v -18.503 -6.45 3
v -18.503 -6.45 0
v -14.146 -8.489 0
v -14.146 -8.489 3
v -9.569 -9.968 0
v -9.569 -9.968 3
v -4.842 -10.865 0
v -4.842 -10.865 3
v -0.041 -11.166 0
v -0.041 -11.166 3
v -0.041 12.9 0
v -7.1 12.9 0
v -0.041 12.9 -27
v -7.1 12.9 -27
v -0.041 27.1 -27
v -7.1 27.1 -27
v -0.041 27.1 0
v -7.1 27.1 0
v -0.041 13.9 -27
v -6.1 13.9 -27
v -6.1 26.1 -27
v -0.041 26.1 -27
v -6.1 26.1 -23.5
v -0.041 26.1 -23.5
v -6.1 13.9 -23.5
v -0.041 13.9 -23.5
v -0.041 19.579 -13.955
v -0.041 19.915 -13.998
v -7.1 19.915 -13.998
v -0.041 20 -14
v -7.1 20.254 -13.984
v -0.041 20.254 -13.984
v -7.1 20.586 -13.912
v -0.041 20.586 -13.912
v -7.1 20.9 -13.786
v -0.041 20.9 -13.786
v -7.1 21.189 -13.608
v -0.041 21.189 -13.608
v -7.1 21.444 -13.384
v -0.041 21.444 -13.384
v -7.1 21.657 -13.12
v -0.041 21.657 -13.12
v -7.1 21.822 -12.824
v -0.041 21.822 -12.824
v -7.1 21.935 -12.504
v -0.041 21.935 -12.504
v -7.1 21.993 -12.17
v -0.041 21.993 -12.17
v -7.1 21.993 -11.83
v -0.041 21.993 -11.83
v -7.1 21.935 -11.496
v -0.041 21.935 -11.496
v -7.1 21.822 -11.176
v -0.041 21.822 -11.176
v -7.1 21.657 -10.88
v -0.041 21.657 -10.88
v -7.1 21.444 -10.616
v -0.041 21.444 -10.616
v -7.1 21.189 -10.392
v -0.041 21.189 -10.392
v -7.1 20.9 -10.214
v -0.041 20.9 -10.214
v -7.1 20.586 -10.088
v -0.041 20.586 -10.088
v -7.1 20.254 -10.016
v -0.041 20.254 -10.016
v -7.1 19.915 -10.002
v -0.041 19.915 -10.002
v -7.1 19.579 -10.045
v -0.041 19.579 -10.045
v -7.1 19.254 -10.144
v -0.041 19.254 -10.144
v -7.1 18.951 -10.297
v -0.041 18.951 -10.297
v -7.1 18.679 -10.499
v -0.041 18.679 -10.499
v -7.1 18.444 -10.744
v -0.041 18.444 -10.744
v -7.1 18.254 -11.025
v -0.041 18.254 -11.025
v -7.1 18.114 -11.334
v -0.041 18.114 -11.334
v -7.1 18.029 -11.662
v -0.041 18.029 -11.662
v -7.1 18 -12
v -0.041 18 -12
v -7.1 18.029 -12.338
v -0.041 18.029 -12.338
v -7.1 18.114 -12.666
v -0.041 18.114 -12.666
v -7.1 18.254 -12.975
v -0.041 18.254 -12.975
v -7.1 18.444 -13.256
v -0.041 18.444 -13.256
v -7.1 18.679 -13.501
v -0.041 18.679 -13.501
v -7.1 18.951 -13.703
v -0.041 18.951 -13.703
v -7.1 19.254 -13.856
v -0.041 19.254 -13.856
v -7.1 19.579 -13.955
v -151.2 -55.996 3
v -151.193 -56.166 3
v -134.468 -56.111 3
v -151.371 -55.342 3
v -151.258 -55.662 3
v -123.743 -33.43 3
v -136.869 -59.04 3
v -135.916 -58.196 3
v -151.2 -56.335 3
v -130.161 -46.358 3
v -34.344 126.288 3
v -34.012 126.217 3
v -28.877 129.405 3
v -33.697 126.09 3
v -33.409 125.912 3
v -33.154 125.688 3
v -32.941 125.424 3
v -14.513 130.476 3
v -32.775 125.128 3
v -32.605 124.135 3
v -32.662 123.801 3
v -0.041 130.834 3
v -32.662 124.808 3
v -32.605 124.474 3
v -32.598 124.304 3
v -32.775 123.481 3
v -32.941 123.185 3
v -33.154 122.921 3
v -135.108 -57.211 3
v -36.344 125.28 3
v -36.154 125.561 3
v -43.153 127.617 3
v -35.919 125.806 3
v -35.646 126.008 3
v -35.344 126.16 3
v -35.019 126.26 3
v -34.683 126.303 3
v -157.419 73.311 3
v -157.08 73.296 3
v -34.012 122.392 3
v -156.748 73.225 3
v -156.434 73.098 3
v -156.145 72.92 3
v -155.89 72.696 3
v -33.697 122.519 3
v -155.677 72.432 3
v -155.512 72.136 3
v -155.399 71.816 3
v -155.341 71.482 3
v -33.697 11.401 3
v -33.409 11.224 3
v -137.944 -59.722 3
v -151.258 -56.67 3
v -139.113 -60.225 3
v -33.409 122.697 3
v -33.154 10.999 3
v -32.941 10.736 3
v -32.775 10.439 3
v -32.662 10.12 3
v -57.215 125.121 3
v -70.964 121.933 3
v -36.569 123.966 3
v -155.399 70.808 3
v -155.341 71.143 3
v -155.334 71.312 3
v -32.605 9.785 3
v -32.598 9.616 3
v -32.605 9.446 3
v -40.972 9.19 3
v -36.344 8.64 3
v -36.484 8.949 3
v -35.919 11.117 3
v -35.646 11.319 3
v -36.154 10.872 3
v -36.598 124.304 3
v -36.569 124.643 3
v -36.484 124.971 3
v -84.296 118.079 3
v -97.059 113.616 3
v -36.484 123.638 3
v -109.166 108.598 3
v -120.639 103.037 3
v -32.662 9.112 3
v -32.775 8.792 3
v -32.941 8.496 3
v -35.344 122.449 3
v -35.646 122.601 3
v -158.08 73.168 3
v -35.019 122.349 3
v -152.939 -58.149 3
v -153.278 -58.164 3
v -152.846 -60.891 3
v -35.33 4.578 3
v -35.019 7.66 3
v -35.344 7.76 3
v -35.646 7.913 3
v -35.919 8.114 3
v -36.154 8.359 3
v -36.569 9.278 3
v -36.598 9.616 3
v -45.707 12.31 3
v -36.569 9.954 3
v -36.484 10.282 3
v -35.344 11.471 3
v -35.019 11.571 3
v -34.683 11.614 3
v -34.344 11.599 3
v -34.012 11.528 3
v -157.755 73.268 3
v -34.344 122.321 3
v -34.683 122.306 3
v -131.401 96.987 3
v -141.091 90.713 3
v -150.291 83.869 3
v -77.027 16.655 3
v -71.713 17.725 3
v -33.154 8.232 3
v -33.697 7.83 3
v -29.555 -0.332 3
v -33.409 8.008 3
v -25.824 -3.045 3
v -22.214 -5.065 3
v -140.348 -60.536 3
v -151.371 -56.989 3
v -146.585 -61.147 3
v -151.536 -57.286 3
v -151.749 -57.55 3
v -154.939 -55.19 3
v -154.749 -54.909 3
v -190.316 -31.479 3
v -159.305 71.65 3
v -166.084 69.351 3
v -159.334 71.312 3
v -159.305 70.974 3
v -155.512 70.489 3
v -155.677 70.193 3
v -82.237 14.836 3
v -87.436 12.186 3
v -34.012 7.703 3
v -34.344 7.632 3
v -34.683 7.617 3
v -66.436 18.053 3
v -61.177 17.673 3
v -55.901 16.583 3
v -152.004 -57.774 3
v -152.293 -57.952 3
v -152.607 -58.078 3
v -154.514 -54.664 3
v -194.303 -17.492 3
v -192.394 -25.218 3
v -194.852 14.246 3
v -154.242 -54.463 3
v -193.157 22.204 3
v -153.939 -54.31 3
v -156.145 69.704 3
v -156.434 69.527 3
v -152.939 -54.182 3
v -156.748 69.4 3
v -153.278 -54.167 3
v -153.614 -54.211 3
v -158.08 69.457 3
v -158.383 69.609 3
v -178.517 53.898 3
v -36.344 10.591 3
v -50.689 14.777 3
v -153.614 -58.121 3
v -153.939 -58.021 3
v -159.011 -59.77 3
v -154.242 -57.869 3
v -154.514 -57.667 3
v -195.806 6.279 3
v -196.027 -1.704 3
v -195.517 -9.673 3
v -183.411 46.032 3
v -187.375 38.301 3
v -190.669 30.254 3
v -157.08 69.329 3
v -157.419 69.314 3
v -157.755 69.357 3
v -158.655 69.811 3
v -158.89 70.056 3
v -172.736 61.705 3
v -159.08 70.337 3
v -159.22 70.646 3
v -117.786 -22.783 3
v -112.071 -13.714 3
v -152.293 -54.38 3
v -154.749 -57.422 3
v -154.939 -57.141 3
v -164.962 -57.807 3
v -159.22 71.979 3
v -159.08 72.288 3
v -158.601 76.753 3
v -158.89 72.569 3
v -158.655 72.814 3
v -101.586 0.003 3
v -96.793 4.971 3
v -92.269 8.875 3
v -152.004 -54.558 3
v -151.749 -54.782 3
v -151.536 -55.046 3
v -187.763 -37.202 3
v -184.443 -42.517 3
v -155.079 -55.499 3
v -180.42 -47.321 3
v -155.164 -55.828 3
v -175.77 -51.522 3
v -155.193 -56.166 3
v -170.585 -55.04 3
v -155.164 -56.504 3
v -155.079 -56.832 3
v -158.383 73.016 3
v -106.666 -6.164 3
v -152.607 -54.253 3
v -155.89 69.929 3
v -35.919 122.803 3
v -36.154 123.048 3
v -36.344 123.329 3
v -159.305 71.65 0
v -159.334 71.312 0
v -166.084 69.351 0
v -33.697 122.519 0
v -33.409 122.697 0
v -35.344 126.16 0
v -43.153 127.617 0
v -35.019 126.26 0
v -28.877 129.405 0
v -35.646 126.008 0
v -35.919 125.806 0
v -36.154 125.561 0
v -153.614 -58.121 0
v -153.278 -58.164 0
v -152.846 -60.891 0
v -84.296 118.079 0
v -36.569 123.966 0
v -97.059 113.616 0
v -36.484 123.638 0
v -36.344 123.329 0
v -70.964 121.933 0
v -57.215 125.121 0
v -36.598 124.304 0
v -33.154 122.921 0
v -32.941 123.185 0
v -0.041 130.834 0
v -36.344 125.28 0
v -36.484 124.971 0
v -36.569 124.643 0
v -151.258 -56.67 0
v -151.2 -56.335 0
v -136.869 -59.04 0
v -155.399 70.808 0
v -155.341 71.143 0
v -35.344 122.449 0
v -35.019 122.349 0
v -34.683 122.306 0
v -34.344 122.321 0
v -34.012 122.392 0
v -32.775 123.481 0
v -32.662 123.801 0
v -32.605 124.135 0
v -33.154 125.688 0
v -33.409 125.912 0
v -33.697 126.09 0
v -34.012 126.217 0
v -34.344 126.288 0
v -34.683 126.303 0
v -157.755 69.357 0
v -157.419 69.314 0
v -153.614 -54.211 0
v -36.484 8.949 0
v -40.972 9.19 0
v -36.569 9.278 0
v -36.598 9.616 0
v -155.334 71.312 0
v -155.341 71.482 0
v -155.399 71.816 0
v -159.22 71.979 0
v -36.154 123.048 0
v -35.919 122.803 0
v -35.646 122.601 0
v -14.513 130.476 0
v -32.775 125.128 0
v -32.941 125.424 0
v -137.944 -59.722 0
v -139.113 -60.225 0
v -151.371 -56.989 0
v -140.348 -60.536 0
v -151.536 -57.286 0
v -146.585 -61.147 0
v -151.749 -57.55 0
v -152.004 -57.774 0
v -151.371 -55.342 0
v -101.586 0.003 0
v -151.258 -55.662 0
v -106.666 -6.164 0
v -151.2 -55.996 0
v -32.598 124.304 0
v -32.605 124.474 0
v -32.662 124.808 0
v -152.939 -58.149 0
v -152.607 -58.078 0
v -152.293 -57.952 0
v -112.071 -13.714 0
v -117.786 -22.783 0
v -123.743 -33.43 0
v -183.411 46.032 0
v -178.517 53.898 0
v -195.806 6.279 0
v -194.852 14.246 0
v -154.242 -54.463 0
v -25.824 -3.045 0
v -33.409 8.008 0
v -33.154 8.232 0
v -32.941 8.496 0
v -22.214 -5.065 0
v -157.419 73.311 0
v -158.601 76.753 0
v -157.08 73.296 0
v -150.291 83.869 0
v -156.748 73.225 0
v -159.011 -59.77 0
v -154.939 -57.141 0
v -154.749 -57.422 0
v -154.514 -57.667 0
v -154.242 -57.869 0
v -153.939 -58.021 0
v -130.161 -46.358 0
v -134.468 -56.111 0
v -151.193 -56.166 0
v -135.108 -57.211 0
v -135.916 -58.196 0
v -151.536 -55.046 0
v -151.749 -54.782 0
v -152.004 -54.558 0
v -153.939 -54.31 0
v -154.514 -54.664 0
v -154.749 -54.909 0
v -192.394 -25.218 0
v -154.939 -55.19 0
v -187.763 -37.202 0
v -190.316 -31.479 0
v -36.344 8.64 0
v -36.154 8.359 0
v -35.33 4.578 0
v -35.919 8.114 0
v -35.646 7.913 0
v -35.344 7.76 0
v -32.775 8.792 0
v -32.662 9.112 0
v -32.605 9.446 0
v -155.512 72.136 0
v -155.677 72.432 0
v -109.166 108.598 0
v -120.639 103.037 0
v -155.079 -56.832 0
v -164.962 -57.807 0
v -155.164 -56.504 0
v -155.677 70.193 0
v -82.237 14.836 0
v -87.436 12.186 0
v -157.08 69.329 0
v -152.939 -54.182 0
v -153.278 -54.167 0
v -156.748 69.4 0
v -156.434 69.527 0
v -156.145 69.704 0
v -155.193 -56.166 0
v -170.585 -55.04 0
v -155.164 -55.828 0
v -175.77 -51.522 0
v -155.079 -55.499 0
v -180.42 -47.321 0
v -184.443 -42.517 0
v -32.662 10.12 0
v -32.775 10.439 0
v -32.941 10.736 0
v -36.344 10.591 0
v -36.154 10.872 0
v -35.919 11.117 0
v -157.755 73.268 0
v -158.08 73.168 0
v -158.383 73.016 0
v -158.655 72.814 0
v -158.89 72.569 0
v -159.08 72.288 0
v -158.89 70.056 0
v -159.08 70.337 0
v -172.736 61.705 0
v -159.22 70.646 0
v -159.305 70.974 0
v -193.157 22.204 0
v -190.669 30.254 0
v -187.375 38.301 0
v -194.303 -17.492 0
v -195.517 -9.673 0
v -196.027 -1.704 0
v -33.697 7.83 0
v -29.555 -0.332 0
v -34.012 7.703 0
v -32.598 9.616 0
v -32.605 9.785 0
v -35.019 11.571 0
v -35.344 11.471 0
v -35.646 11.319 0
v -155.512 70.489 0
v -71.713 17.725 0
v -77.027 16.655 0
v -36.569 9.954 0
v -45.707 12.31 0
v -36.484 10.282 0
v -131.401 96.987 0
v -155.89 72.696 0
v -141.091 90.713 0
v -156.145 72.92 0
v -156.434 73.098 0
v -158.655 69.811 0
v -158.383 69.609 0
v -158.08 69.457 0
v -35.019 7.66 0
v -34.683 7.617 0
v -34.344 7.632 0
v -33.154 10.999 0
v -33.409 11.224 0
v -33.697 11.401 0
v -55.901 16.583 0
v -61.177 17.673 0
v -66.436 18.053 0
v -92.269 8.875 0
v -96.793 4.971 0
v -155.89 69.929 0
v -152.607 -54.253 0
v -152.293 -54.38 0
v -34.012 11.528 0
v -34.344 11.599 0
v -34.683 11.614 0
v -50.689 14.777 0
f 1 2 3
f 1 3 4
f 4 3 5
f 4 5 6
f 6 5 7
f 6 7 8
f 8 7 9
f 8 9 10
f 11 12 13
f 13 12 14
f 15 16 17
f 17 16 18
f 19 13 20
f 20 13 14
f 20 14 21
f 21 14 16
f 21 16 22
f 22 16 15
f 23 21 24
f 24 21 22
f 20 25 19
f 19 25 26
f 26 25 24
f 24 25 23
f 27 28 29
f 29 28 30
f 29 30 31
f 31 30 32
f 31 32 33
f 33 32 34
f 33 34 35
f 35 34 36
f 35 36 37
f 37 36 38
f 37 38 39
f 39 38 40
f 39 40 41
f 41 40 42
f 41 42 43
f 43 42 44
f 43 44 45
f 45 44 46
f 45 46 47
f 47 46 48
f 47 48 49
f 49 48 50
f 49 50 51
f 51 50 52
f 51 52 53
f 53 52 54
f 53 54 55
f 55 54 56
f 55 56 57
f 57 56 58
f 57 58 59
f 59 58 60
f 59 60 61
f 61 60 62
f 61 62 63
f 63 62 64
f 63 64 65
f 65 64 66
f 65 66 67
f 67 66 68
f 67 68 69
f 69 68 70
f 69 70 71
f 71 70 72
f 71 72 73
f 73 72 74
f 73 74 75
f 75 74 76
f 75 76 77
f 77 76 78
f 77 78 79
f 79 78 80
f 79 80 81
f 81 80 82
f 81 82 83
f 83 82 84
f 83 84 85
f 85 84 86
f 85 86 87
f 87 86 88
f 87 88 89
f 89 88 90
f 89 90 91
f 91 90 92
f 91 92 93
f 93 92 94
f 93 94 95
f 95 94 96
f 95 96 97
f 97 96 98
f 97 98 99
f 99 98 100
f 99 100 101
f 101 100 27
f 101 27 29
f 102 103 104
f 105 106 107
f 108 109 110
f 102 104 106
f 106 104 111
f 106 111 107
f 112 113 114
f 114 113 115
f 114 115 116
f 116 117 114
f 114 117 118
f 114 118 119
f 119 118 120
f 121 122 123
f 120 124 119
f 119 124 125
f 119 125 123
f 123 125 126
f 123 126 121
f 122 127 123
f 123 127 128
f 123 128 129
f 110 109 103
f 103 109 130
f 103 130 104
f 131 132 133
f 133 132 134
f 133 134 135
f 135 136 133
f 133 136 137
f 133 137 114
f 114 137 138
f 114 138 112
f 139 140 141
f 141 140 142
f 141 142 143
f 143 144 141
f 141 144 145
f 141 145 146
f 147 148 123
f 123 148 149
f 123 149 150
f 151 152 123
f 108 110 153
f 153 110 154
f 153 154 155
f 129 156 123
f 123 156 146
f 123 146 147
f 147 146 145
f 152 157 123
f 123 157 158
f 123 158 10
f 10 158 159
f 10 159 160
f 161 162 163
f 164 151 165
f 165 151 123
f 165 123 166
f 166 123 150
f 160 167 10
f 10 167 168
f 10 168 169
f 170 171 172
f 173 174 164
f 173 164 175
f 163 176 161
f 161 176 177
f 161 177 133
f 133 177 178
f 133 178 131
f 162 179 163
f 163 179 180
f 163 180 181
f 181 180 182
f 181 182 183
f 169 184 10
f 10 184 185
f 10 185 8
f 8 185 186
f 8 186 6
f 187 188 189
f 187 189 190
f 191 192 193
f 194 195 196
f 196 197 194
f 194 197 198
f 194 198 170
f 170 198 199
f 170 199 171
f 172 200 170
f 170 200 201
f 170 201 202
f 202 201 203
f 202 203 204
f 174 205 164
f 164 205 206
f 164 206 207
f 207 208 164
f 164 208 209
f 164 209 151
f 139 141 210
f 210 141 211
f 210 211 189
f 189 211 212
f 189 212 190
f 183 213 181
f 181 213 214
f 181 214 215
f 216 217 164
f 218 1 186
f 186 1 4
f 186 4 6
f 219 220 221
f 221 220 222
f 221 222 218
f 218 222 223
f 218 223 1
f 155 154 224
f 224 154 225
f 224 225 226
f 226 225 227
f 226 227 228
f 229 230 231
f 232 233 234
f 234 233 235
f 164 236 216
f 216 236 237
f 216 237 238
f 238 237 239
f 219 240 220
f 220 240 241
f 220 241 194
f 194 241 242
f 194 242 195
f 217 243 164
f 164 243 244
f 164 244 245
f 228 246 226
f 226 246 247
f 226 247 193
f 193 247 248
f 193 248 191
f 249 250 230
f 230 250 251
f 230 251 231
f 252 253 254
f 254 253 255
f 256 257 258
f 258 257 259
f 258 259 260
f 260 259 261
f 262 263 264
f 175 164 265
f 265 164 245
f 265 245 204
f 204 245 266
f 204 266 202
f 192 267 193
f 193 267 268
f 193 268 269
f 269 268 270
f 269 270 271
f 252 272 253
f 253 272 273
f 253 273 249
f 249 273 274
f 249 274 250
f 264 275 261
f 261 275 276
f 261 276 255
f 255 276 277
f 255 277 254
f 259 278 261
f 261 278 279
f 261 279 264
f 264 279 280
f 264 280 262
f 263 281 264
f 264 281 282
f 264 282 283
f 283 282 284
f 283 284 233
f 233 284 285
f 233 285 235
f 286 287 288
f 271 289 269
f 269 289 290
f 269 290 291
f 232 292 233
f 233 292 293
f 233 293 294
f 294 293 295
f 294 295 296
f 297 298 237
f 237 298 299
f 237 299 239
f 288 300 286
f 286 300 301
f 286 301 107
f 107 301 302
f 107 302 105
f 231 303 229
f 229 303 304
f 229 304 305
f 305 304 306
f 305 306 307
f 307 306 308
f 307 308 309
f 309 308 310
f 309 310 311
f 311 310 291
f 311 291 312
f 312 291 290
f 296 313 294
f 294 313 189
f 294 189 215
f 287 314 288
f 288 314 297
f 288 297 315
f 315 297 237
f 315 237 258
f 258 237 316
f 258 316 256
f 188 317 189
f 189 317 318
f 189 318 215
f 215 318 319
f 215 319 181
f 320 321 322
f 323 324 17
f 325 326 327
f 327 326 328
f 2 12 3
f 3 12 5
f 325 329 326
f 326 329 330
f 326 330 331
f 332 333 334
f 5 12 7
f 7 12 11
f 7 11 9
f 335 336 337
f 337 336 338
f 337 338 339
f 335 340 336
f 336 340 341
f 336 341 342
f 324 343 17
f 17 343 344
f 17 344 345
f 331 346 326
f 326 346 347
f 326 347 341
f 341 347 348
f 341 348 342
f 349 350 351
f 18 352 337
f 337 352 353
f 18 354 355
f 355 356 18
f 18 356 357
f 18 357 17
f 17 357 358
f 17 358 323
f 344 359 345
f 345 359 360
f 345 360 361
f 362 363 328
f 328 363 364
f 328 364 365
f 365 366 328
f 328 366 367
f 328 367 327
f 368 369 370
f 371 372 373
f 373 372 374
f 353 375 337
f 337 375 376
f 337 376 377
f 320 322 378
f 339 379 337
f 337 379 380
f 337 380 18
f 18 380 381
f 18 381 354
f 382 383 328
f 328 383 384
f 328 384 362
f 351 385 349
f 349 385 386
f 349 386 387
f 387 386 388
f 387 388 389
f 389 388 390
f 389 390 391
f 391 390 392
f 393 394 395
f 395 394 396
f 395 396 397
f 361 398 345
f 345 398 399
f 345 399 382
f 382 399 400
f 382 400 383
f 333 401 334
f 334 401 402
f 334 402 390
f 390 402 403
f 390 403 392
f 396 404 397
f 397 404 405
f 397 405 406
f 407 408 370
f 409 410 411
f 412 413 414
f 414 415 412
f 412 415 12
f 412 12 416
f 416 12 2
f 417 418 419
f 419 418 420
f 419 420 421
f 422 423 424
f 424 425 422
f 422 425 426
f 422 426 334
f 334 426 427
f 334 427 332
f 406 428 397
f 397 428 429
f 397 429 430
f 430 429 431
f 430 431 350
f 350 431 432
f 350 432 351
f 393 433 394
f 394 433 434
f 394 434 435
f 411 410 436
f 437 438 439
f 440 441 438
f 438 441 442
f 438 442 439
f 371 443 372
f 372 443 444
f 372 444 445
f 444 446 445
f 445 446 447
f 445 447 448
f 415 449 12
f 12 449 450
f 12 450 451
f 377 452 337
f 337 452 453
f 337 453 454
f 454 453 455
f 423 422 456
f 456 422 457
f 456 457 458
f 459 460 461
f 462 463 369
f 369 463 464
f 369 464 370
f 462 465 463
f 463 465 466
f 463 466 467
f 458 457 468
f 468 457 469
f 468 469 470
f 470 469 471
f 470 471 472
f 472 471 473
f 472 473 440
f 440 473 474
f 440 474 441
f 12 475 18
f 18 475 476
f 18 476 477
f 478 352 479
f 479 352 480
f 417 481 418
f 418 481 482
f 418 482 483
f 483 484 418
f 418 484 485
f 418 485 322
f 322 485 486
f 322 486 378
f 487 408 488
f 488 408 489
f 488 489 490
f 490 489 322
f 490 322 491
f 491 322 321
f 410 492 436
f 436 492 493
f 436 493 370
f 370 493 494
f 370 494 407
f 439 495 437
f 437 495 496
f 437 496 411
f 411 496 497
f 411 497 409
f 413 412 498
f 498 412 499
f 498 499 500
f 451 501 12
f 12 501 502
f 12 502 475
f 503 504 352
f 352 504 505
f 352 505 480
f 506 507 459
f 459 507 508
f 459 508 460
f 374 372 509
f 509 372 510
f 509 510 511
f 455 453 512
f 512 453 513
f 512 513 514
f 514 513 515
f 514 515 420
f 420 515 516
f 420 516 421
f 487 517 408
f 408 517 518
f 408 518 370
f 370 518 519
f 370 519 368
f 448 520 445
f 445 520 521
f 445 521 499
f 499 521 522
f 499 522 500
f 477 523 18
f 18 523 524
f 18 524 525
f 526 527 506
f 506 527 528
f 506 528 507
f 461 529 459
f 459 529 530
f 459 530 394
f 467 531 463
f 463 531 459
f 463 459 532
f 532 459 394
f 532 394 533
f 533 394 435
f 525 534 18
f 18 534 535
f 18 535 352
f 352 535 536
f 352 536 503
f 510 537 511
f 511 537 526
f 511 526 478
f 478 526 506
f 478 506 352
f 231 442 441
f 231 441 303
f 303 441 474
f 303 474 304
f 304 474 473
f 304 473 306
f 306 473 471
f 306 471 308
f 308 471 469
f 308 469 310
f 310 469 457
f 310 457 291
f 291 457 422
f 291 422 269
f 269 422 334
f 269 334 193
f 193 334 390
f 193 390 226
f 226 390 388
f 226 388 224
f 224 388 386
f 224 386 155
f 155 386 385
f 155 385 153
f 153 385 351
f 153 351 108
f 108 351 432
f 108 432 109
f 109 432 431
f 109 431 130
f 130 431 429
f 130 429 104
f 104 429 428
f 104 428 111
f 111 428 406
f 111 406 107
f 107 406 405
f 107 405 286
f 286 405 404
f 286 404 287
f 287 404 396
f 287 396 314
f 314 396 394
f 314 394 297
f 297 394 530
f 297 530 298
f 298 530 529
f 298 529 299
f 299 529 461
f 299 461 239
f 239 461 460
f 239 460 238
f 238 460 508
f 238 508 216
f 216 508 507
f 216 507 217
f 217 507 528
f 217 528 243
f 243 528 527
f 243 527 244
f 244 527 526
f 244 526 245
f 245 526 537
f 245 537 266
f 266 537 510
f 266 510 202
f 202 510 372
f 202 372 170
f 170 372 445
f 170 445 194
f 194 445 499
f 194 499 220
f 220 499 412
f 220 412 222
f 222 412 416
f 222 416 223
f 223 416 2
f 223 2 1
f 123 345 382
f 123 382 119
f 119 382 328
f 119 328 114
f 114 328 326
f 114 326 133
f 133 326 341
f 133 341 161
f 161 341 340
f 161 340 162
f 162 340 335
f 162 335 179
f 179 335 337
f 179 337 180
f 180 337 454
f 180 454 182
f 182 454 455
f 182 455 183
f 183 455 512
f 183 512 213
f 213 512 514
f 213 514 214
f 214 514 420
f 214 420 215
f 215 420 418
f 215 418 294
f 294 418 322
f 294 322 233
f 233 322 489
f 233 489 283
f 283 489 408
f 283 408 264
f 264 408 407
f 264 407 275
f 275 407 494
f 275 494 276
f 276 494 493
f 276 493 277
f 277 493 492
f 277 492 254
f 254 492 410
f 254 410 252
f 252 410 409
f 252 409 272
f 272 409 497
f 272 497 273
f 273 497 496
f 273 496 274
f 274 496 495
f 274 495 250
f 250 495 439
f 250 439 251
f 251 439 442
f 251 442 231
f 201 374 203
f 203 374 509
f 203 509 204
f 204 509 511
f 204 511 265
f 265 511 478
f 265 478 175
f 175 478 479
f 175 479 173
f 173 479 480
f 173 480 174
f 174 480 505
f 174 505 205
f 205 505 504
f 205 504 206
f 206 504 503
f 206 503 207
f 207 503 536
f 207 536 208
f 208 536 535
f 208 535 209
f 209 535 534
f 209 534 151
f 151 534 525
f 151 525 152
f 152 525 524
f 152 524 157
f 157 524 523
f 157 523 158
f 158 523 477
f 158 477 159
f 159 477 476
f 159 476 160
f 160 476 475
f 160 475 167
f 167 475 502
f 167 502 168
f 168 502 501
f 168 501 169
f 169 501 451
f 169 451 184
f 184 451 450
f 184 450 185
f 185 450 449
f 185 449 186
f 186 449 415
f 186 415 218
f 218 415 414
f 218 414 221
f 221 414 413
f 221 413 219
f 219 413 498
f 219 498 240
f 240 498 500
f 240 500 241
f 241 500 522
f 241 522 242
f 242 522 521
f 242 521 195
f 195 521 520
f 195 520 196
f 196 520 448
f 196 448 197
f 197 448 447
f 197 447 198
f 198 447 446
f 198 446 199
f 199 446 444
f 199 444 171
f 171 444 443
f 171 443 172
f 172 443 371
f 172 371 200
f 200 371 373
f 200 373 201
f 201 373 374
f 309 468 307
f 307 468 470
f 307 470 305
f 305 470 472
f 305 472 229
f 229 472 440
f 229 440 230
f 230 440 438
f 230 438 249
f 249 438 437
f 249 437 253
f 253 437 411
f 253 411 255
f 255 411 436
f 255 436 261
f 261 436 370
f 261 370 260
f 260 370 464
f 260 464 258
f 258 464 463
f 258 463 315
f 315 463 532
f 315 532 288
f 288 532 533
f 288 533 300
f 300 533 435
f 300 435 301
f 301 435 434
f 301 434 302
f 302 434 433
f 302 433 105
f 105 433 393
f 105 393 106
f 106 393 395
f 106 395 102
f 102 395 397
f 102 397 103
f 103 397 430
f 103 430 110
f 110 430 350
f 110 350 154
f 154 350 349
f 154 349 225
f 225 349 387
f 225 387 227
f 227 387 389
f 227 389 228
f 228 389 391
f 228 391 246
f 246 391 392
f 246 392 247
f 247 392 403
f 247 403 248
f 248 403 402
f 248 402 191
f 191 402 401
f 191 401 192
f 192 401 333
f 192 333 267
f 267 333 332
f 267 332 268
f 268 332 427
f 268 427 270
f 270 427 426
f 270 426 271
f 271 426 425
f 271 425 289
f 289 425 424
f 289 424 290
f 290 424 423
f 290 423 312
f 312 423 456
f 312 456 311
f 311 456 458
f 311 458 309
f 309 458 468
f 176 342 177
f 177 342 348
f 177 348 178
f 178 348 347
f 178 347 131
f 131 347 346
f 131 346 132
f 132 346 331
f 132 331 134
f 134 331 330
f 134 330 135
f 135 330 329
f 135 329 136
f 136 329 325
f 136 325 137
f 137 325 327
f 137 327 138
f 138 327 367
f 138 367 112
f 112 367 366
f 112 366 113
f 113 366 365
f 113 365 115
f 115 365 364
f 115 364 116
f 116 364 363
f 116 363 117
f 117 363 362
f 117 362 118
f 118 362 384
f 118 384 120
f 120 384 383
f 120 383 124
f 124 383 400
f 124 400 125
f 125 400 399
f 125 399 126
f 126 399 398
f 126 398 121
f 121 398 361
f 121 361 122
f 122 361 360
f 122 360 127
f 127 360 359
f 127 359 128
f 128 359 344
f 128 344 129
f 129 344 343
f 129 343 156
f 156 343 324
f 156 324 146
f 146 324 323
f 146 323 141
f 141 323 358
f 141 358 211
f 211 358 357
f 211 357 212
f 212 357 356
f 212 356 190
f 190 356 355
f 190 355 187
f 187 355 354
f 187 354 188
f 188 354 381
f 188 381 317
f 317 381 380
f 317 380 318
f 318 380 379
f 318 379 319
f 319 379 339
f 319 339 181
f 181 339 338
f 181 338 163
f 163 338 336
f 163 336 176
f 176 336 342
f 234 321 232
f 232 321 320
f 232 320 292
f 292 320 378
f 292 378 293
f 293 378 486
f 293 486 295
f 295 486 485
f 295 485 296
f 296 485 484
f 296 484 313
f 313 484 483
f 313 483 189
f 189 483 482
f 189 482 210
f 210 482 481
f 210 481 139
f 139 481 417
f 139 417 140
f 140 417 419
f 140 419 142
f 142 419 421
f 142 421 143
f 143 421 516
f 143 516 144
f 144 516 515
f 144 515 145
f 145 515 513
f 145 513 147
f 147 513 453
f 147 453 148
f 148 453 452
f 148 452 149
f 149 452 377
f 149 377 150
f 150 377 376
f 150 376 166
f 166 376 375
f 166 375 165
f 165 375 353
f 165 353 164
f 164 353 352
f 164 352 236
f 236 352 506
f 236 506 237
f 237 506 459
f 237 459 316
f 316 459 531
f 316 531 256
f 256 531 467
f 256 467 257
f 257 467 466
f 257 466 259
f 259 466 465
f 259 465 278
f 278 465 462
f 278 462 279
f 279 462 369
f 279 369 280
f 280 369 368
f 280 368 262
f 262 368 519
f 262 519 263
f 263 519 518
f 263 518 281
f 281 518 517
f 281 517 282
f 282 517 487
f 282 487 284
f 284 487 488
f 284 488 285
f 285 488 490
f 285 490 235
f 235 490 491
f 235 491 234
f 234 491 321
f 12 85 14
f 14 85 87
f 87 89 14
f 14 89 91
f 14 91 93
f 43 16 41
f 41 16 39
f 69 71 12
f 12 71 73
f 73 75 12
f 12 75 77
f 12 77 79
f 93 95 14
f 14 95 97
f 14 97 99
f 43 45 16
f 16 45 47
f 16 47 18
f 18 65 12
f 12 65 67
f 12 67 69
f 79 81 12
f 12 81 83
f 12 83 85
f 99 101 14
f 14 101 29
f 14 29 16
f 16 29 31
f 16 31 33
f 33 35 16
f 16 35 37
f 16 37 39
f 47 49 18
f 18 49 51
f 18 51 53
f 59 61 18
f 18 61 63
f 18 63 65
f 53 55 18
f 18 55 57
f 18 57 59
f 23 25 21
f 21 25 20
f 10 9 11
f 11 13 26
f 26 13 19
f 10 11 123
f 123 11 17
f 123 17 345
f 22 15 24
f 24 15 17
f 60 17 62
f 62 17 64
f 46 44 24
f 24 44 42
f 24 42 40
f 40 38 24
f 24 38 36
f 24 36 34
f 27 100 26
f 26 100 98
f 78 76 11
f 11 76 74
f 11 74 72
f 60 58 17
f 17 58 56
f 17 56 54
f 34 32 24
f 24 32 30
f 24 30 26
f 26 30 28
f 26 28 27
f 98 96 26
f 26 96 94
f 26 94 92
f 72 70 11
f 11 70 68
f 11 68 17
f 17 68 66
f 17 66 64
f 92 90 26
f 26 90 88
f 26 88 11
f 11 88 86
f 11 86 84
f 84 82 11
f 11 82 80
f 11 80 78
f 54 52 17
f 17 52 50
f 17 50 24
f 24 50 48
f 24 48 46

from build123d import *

# Parameters (mm, degrees)
CROQUIS7_R                 = 2.25
CROQUIS7_R_2               = 2
SALIENTE_EXTRUIR5_DEPTH    = 3
CROQUIS8_W                 = 14.2
CROQUIS8_H                 = 14.2
SALIENTE_EXTRUIR6_DEPTH    = 30
CROQUIS9_W                 = 12.2
CROQUIS9_H                 = 12.2
CORTAR_EXTRUIR3_DEPTH      = 3.5
CROQUIS10_R                = 1.5
CROQUIS10_W                = 52
CROQUIS10_H                = 60
CORTAR_EXTRUIR4_DEPTH      = 10
CROQUIS11_R                = 2
CORTAR_EXTRUIR5_DEPTH      = 244.062677057
CORTAR_EXTRUIR6_DEPTH      = 10
CORTAR_EXTRUIR6_DEPTH_BACK = 30


with BuildPart() as part:
    # Croquis7 → Saliente-Extruir5 (new body)
    with BuildSketch(Plane(origin=(0, 0, 0), x_dir=(-1, 0, 0), z_dir=(0, 0, 1))):
        with BuildLine():
            ThreePointArc((140.348102944, 60.535906772), (136.868803986, 59.039740818), (134.467588313, 56.110884882))
            add(Edge.make_bspline(
                [(134.467588313, 56.110884882), (134.149654238, 55.334133411), (133.822967437, 54.561974551), (133.162468089, 53.021395753), (132.827829682, 52.253409151), (131.813137405, 49.95510413), (129.740491118, 45.381193792), (127.554094799, 40.866968809), (124.537000873, 34.901469121), (122.977142227, 31.945642839), (119.740627649, 26.095274542), (118.063871011, 23.200785369), (115.441409795, 18.91536637), (114.549338579, 17.496294783), (112.72383113, 14.679856092), (111.790405163, 13.282650688), (108.93090019, 9.143306555), (106.942158815, 6.448783713), (103.789519774, 2.5408027), (102.709995436, 1.260750849), (101.03852657, -0.618140745), (100.472644941, -1.237551258), (99.321371183, -2.460973153), (98.735216612, -3.065706766), (96.949611744, -4.848397798), (95.725315546, -5.992490783), (93.193460811, -8.17168186), (91.885551874, -9.206321258), (89.163749912, -11.136861166), (87.750446472, -12.033533472), (85.542380661, -13.263200338), (84.789940556, -13.654501875), (83.273337808, -14.386945731), (82.507210908, -14.729300557), (80.185156663, -15.684162987), (78.605545886, -16.224438396), (76.18690973, -16.88473526), (75.372506069, -17.079850593), (73.726807841, -17.418565616), (72.893614615, -17.562445585), (68.705243638, -18.145869815), (65.366316414, -18.172349369), (61.206552273, -17.685687456), (60.375297364, -17.562248247), (58.714202725, -17.262432714), (57.885084071, -17.085992517), (55.432802766, -16.486020136), (53.833347943, -15.990242323), (50.701372835, -14.817551431), (49.168805031, -14.140766948), (46.919374597, -12.991848579), (46.176109393, -12.585433423), (44.71844096, -11.734682347), (44.00330992, -11.290078896), (41.89786804, -9.900210079), (40.548675898, -8.897248108), (37.915404815, -6.799959147), (36.631444442, -5.705240729), (34.080234787, -3.494531224), (32.813017874, -2.37801674), (30.236662295, -0.200762722), (28.927839074, 0.860396497), (26.200660035, 2.836986891), (24.782534521, 3.752724475), (22.513326989, 4.937380803), (21.731218891, 5.30092632), (20.538800155, 5.779648827), (20.137325925, 5.928599802), (19.528876591, 6.135464876), (19.325056364, 6.201754934), (18.915138447, 6.32828856), (18.709169476, 6.388873867), (18.503492991, 6.450235701)],
                knots=[0, 0, 0, 0, 0.015625, 0.015625, 0.03125, 0.03125, 0.0625, 0.125, 0.125, 0.1875, 0.1875, 0.25, 0.25, 0.28125, 0.28125, 0.3125, 0.3125, 0.375, 0.375, 0.40625, 0.40625, 0.421875, 0.421875, 0.4375, 0.4375, 0.46875, 0.46875, 0.5, 0.5, 0.53125, 0.53125, 0.546875, 0.546875, 0.5625, 0.5625, 0.59375, 0.59375, 0.609375, 0.609375, 0.625, 0.625, 0.6875, 0.6875, 0.703125, 0.703125, 0.71875, 0.71875, 0.75, 0.75, 0.78125, 0.78125, 0.796875, 0.796875, 0.8125, 0.8125, 0.84375, 0.84375, 0.875, 0.875, 0.90625, 0.90625, 0.9375, 0.9375, 0.96875, 0.96875, 0.984375, 0.984375, 0.9921875, 0.9921875, 0.99609375, 0.99609375, 1, 1, 1, 1], degree=3))
            ThreePointArc((18.503492991, 6.450235701), (9.568725558, 9.968187997), (0.041286445, 11.165669263))
            ThreePointArc((0.041286445, 11.165669263), (-9.486152668, 9.968187997), (-18.420920101, 6.450235701))
            add(Edge.make_bspline(
                [(-18.420920101, 6.450235701), (-18.623940111, 6.389666404), (-18.827355959, 6.329830822), (-19.231521602, 6.205217931), (-19.432092857, 6.140109685), (-20.029834347, 5.937422038), (-20.422847663, 5.792137477), (-21.586408936, 5.327592923), (-23.851571133, 4.283655696), (-25.957152112, 2.943922804), (-27.995784216, 1.480095188), (-28.664890842, 0.970984568), (-29.983921002, -0.073329511), (-31.932785293, -1.677966714), (-33.830609801, -3.348234863), (-37.648198778, -6.660559044), (-40.223642402, -8.829704647), (-43.732103414, -11.16931662), (-44.447751487, -11.619293464), (-45.90833942, -12.481581481), (-46.654055565, -12.894111913), (-48.910026429, -14.05945093), (-50.447191979, -14.745557377), (-53.587886072, -15.936216829), (-55.191605427, -16.440247818), (-57.65002542, -17.051733947), (-58.478840799, -17.231454942), (-60.152957814, -17.539864916), (-60.990189376, -17.667132679), (-65.177200996, -18.170568112), (-68.529524477, -18.150830669), (-72.723459823, -17.57652989), (-73.56537326, -17.433195972), (-75.227722525, -17.094199895), (-76.049649818, -16.898572429), (-78.48861692, -16.235921786), (-80.078810549, -15.693041625), (-82.413070582, -14.734529063), (-83.182665748, -14.391031128), (-84.704996506, -13.656396586), (-85.459349689, -13.264347284), (-87.686334065, -12.023619951), (-89.109100698, -11.119013238), (-91.845960574, -9.173794538), (-93.159325686, -8.13227129), (-95.699651961, -5.941089833), (-96.92657944, -4.791389468), (-99.311327975, -2.405501713), (-100.470747098, -1.167746926), (-102.705277757, 1.350255866), (-103.784333544, 2.63413345), (-106.931979291, 6.54404893), (-108.909553818, 9.229342103), (-112.69311531, 14.711639925), (-114.498345943, 17.509136981), (-117.975283478, 23.191061246), (-119.646743776, 26.075649006), (-122.879072623, 31.916824892), (-124.439905913, 34.873435974), (-127.463527635, 40.850489896), (-128.925763536, 43.869333899), (-131.039316303, 48.429617131), (-132.076557677, 50.718681564), (-133.080557539, 53.0229294), (-133.740912999, 54.563195318), (-134.0674355, 55.334997841), (-134.385015461, 56.110884961)],
                knots=[0, 0, 0, 0, 0.00390625, 0.00390625, 0.0078125, 0.0078125, 0.015625, 0.015625, 0.03125, 0.0625, 0.0625, 0.078125, 0.078125, 0.09375, 0.125, 0.125, 0.1875, 0.1875, 0.203125, 0.203125, 0.21875, 0.21875, 0.25, 0.25, 0.28125, 0.28125, 0.296875, 0.296875, 0.3125, 0.3125, 0.375, 0.375, 0.390625, 0.390625, 0.40625, 0.40625, 0.4375, 0.4375, 0.453125, 0.453125, 0.46875, 0.46875, 0.5, 0.5, 0.53125, 0.53125, 0.5625, 0.5625, 0.59375, 0.59375, 0.625, 0.625, 0.6875, 0.6875, 0.75, 0.75, 0.8125, 0.8125, 0.875, 0.875, 0.9375, 0.9375, 0.96875, 0.984375, 0.984375, 1, 1, 1, 1], degree=3))
            ThreePointArc((-134.385015461, 56.110884961), (-136.786231132, 59.039740844), (-140.265530055, 60.535906772))
            add(Edge.make_bspline(
                [(-140.265530055, 60.535906772), (-142.869313612, 60.975194236), (-145.472736764, 61.181545126), (-149.377353564, 61.156324129), (-150.678805664, 61.091795359), (-152.630851923, 60.909758714), (-153.281511997, 60.834852812), (-154.582787463, 60.656161872), (-155.234853603, 60.552101706), (-158.476802726, 59.961533397), (-160.993294496, 59.270458626), (-164.656700058, 57.918026872), (-165.859171506, 57.414272212), (-167.634457246, 56.578016163), (-168.221475639, 56.285808038), (-169.38587085, 55.674041203), (-169.964457435, 55.353726594), (-172.807439805, 53.697511994), (-174.937398486, 52.192576754), (-177.922607968, 49.673841605), (-178.882521506, 48.790456721), (-180.268716868, 47.398497719), (-180.721823613, 46.9233488), (-181.609804133, 45.950331764), (-182.044492036, 45.452521121), (-184.149785555, 42.932694997), (-185.636363328, 40.798932433), (-188.228703234, 36.30425224), (-189.334510792, 33.943361708), (-190.239592269, 31.46273884)],
                knots=[0, 0, 0, 0, 0.125, 0.125, 0.1875, 0.1875, 0.21875, 0.21875, 0.25, 0.25, 0.375, 0.375, 0.4375, 0.4375, 0.46875, 0.46875, 0.5, 0.5, 0.625, 0.625, 0.6875, 0.6875, 0.71875, 0.71875, 0.75, 0.75, 0.875, 0.875, 1, 1, 1, 1], degree=3))
            add(Edge.make_bspline(
                [(-190.239592269, 31.46273884), (-192.375255576, 25.696350204), (-193.930960398, 19.817912179), (-195.353011767, 10.824149994), (-195.674576312, 7.796775057), (-195.917624035, 3.209479486), (-195.95859604, 1.668142737), (-195.958829749, -1.399076424), (-195.918430127, -2.92654924), (-195.518471979, -10.533929614), (-194.56743795, -16.524250265), (-192.629288141, -23.898650857), (-192.204015591, -25.3678295), (-191.509820309, -27.563072124), (-191.268868279, -28.293875271), (-190.770797886, -29.745373087), (-190.513422668, -30.466933466), (-189.18582541, -34.054284362), (-187.99353352, -36.858768915), (-185.368434906, -42.346946573), (-183.935518187, -45.030584436), (-181.616583515, -48.97088495), (-180.815309976, -50.270107971), (-179.15756631, -52.840833163), (-178.299496505, -54.114584529), (-173.894487634, -60.387567833), (-170.029043597, -65.071235074), (-161.734486632, -73.885990461), (-157.304059995, -78.015790745), (-151.455251464, -82.873380155), (-150.269861365, -83.829577122), (-147.868570878, -85.712061036), (-146.651110312, -86.639504887), (-142.965561618, -89.369434932), (-140.47059657, -91.115230775), (-132.88142891, -96.148767416), (-127.683244876, -99.23322641), (-117.044436945, -104.928178838), (-111.603518482, -107.538096399), (-100.500242462, -112.325022089), (-94.837739322, -114.501745604), (-87.628813583, -116.966944585), (-86.180135392, -117.447244101), (-83.281186284, -118.37891039), (-78.92614565, -119.734494508), (-74.551754575, -120.967502962), (-65.778285791, -123.277142009), (-59.896441582, -124.608717398), (-48.071099861, -126.88132439), (-42.127581641, -127.822224818), (-30.181011709, -129.326909852), (-18.174890213, -130.454364585), (-6.05076732, -130.834337664), (0.041286395, -130.834337718)],
                knots=[0, 0, 0, 0, 0.0625, 0.0625, 0.09375, 0.09375, 0.109375, 0.109375, 0.125, 0.125, 0.1875, 0.1875, 0.203125, 0.203125, 0.2109375, 0.2109375, 0.21875, 0.21875, 0.25, 0.25, 0.28125, 0.28125, 0.296875, 0.296875, 0.3125, 0.3125, 0.375, 0.375, 0.4375, 0.4375, 0.453125, 0.453125, 0.46875, 0.46875, 0.5, 0.5, 0.5625, 0.5625, 0.625, 0.625, 0.6875, 0.6875, 0.703125, 0.703125, 0.71875, 0.75, 0.75, 0.8125, 0.8125, 0.875, 0.875, 0.9375, 1, 1, 1, 1], degree=3))
            add(Edge.make_bspline(
                [(0.041286395, -130.834337718), (6.134538372, -130.834337861), (18.261394111, -130.454215542), (30.270890379, -129.326191765), (42.221146328, -127.820644803), (48.166664918, -126.879178393), (59.996316501, -124.605051093), (65.880471618, -123.272531195), (74.657643286, -120.961098273), (79.033976886, -119.727301499), (83.391005428, -118.370478603), (86.291297223, -117.437928825), (87.740322905, -116.957264458), (94.94849915, -114.491286465), (100.612718757, -112.313197934), (111.723756279, -107.520808049), (117.170703974, -104.9067671), (127.825648694, -99.19923472), (133.033931688, -96.106317082), (139.373186051, -91.896862023), (140.632464259, -91.037770104), (143.133063373, -89.283555245), (144.374861494, -88.388007586), (148.052238664, -85.660160511), (150.446425915, -83.782144112), (157.447735696, -77.960356266), (161.874926497, -73.830213662), (168.100826372, -67.205265408), (170.107260305, -64.925618709), (173.00207465, -61.387202315), (173.947865617, -60.187897794), (175.799183824, -57.747584062), (176.704009528, -56.507250952), (181.087838152, -50.248918472), (184.175371038, -45.022352222), (188.097143692, -36.810598338), (189.285816024, -34.01118958), (190.610308183, -30.427356556), (190.867135429, -29.70635937), (191.364231806, -28.255685919), (191.604838096, -27.524920821), (192.298313078, -25.328623504), (192.722722681, -23.859837654), (194.655712304, -16.493027919), (195.598905702, -10.526579041), (196.07921656, -1.463811899), (196.083096745, 1.576017168), (195.845385004, 6.165233834), (195.724990331, 7.703216662), (195.405329025, 10.754442145), (195.206051361, 12.271290951), (194.017367953, 19.812812816), (192.45374436, 25.709911997), (190.316013842, 31.479461946)],
                knots=[0, 0, 0, 0, 0.0625, 0.125, 0.125, 0.1875, 0.1875, 0.25, 0.25, 0.28125, 0.296875, 0.296875, 0.3125, 0.3125, 0.375, 0.375, 0.4375, 0.4375, 0.5, 0.5, 0.515625, 0.515625, 0.53125, 0.53125, 0.5625, 0.5625, 0.625, 0.625, 0.65625, 0.65625, 0.671875, 0.671875, 0.6875, 0.6875, 0.75, 0.75, 0.78125, 0.78125, 0.7890625, 0.7890625, 0.796875, 0.796875, 0.8125, 0.8125, 0.875, 0.875, 0.90625, 0.90625, 0.921875, 0.921875, 0.9375, 0.9375, 1, 1, 1, 1], degree=3))
            ThreePointArc((190.316013842, 31.479461946), (170.584652034, 55.040486981), (140.348102944, 60.535906772))
        make_face()
        with Locations(Location((-153.110491216, 56.165669263, 0), (0, 0, 180))):
            Circle(CROQUIS7_R, mode=Mode.SUBTRACT)
        with Locations(Location((-34.515211049, -9.615590181, 0), (0, 0, 180))):
            Circle(CROQUIS7_R, mode=Mode.SUBTRACT)
        with Locations(Location((34.597783939, -9.615590181, 0), (0, 0, 180))):
            Circle(CROQUIS7_R_2, mode=Mode.SUBTRACT)
        with Locations(Location((153.193064106, 56.165669263, 0), (0, 0, 180))):
            Circle(CROQUIS7_R_2, mode=Mode.SUBTRACT)
        with Locations(Location((-157.251517535, -72.229628149, 0), (0, 0, 180))):
            Circle(CROQUIS7_R, mode=Mode.SUBTRACT)
        with Locations(Location((-34.515211049, -124.304498834, 0), (0, 0, 180))):
            Circle(CROQUIS7_R, mode=Mode.SUBTRACT)
        with Locations(Location((34.597783939, -124.304498834, 0), (0, 0, 180))):
            Circle(CROQUIS7_R_2, mode=Mode.SUBTRACT)
        with Locations(Location((157.334090424, -71.312448831, 0), (0, 0, 180))):
            Circle(CROQUIS7_R_2, mode=Mode.SUBTRACT)
    extrude(amount=SALIENTE_EXTRUIR5_DEPTH)

    # Croquis8 → Saliente-Extruir6 (add)
    with BuildSketch(Plane.XY.offset(3)):
        with Locations((0, 20)):
            Rectangle(CROQUIS8_W, CROQUIS8_H)
    extrude(amount=-SALIENTE_EXTRUIR6_DEPTH)

    # Croquis9 → Cortar-Extruir3 (cut)
    with BuildSketch(Plane(origin=(0, 0, -27), x_dir=(-1, 0, 0), z_dir=(0, 0, -1))):
        with Locations((0, 20)):
            Rectangle(CROQUIS9_W, CROQUIS9_H)
    extrude(amount=-CORTAR_EXTRUIR3_DEPTH, mode=Mode.SUBTRACT)

    # Croquis10 → Cortar-Extruir4 (cut)
    with BuildSketch(Plane.XY.offset(3)):
        with Locations((153.110491216, 41.334330737)):
            Circle(CROQUIS10_R)
        with Locations((153.110491216, -23.665669263)):
            Circle(CROQUIS10_R)
        with Locations((153.110491216, 8.834330737)):
            Rectangle(CROQUIS10_W, CROQUIS10_H)
    extrude(amount=-CORTAR_EXTRUIR4_DEPTH, mode=Mode.SUBTRACT)

    # Croquis11 → Cortar-Extruir5 (cut, through all)
    with BuildSketch(Plane.ZY.offset(7.1)):
        with Locations(Location((-12, 20, 0), (0, 0, 270))):
            Circle(CROQUIS11_R)
    extrude(amount=-CORTAR_EXTRUIR5_DEPTH, mode=Mode.SUBTRACT)

    # Croquis12 → Cortar-Extruir6 (cut, two sides: drawn at the far end of the back side and taken through both)
    with BuildSketch(Plane.XY.offset(3).offset(-CORTAR_EXTRUIR6_DEPTH_BACK)):
        with BuildLine():
            Line((-0.041286395, -11.165669263), (-0.041286395, 130.834337718))
            add(Edge.make_bspline(
                [(190.239592269, -31.46273884), (192.375255576, -25.696350204), (193.930960398, -19.817912179), (195.353011767, -10.824149994), (195.674576312, -7.796775057), (195.917624035, -3.209479486), (195.95859604, -1.668142737), (195.958829749, 1.399076424), (195.918430127, 2.92654924), (195.518471979, 10.533929614), (194.56743795, 16.524250265), (192.629288141, 23.898650857), (192.204015591, 25.3678295), (191.509820309, 27.563072124), (191.268868279, 28.293875271), (190.770797886, 29.745373087), (190.513422668, 30.466933466), (189.18582541, 34.054284362), (187.99353352, 36.858768915), (185.368434906, 42.346946573), (183.935518187, 45.030584436), (181.616583515, 48.97088495), (180.815309976, 50.270107971), (179.15756631, 52.840833163), (178.299496505, 54.114584529), (173.894487634, 60.387567833), (170.029043597, 65.071235074), (161.734486632, 73.885990461), (157.304059995, 78.015790745), (151.455251464, 82.873380155), (150.269861365, 83.829577122), (147.868570878, 85.712061036), (146.651110312, 86.639504887), (142.965561618, 89.369434932), (140.47059657, 91.115230775), (132.88142891, 96.148767416), (127.683244876, 99.23322641), (117.044436945, 104.928178838), (111.603518482, 107.538096399), (100.500242462, 112.325022089), (94.837739322, 114.501745604), (87.628813583, 116.966944585), (86.180135392, 117.447244101), (83.281186284, 118.37891039), (78.92614565, 119.734494508), (74.551754575, 120.967502962), (65.778285791, 123.277142009), (59.896441582, 124.608717398), (48.071099861, 126.88132439), (42.127581641, 127.822224818), (30.181011709, 129.326909852), (18.174890213, 130.454364585), (6.05076732, 130.834337664), (-0.041286395, 130.834337718)],
                knots=[0, 0, 0, 0, 0.0625, 0.0625, 0.09375, 0.09375, 0.109375, 0.109375, 0.125, 0.125, 0.1875, 0.1875, 0.203125, 0.203125, 0.2109375, 0.2109375, 0.21875, 0.21875, 0.25, 0.25, 0.28125, 0.28125, 0.296875, 0.296875, 0.3125, 0.3125, 0.375, 0.375, 0.4375, 0.4375, 0.453125, 0.453125, 0.46875, 0.46875, 0.5, 0.5, 0.5625, 0.5625, 0.625, 0.625, 0.6875, 0.6875, 0.703125, 0.703125, 0.71875, 0.75, 0.75, 0.8125, 0.8125, 0.875, 0.875, 0.9375, 1, 1, 1, 1], degree=3))
            add(Edge.make_bspline(
                [(140.265530055, -60.535906772), (142.869313612, -60.975194236), (145.472736764, -61.181545126), (149.377353564, -61.156324129), (150.678805664, -61.091795359), (152.630851923, -60.909758714), (153.281511997, -60.834852812), (154.582787463, -60.656161872), (155.234853603, -60.552101706), (158.476802726, -59.961533397), (160.993294496, -59.270458626), (164.656700058, -57.918026872), (165.859171506, -57.414272212), (167.634457246, -56.578016163), (168.221475639, -56.285808038), (169.38587085, -55.674041203), (169.964457435, -55.353726594), (172.807439805, -53.697511994), (174.937398486, -52.192576754), (177.922607968, -49.673841605), (178.882521506, -48.790456721), (180.268716868, -47.398497719), (180.721823613, -46.9233488), (181.609804133, -45.950331764), (182.044492036, -45.452521121), (184.149785555, -42.932694997), (185.636363328, -40.798932433), (188.228703234, -36.30425224), (189.334510792, -33.943361708), (190.239592269, -31.46273884)],
                knots=[0, 0, 0, 0, 0.125, 0.125, 0.1875, 0.1875, 0.21875, 0.21875, 0.25, 0.25, 0.375, 0.375, 0.4375, 0.4375, 0.46875, 0.46875, 0.5, 0.5, 0.625, 0.625, 0.6875, 0.6875, 0.71875, 0.71875, 0.75, 0.75, 0.875, 0.875, 1, 1, 1, 1], degree=3))
            ThreePointArc((140.265530055, -60.535906772), (136.786231132, -59.039740844), (134.385015461, -56.110884961))
            add(Edge.make_bspline(
                [(18.420920101, -6.450235701), (18.623940111, -6.389666404), (18.827355959, -6.329830822), (19.231521602, -6.205217931), (19.432092857, -6.140109685), (20.029834347, -5.937422038), (20.422847663, -5.792137477), (21.586408936, -5.327592923), (23.851571133, -4.283655696), (25.957152112, -2.943922804), (27.995784216, -1.480095188), (28.664890842, -0.970984568), (29.983921002, 0.073329511), (31.932785293, 1.677966714), (33.830609801, 3.348234863), (37.648198778, 6.660559044), (40.223642402, 8.829704647), (43.732103414, 11.16931662), (44.447751487, 11.619293464), (45.90833942, 12.481581481), (46.654055565, 12.894111913), (48.910026429, 14.05945093), (50.447191979, 14.745557377), (53.587886072, 15.936216829), (55.191605427, 16.440247818), (57.65002542, 17.051733947), (58.478840799, 17.231454942), (60.152957814, 17.539864916), (60.990189376, 17.667132679), (65.177200996, 18.170568112), (68.529524477, 18.150830669), (72.723459823, 17.57652989), (73.56537326, 17.433195972), (75.227722525, 17.094199895), (76.049649818, 16.898572429), (78.48861692, 16.235921786), (80.078810549, 15.693041625), (82.413070582, 14.734529063), (83.182665748, 14.391031128), (84.704996506, 13.656396586), (85.459349689, 13.264347284), (87.686334065, 12.023619951), (89.109100698, 11.119013238), (91.845960574, 9.173794538), (93.159325686, 8.13227129), (95.699651961, 5.941089833), (96.92657944, 4.791389468), (99.311327975, 2.405501713), (100.470747098, 1.167746926), (102.705277757, -1.350255866), (103.784333544, -2.63413345), (106.931979291, -6.54404893), (108.909553818, -9.229342103), (112.69311531, -14.711639925), (114.498345943, -17.509136981), (117.975283478, -23.191061246), (119.646743776, -26.075649006), (122.879072623, -31.916824892), (124.439905913, -34.873435974), (127.463527635, -40.850489896), (128.925763536, -43.869333899), (131.039316303, -48.429617131), (132.076557677, -50.718681564), (133.080557539, -53.0229294), (133.740912999, -54.563195318), (134.0674355, -55.334997841), (134.385015461, -56.110884961)],
                knots=[0, 0, 0, 0, 0.00390625, 0.00390625, 0.0078125, 0.0078125, 0.015625, 0.015625, 0.03125, 0.0625, 0.0625, 0.078125, 0.078125, 0.09375, 0.125, 0.125, 0.1875, 0.1875, 0.203125, 0.203125, 0.21875, 0.21875, 0.25, 0.25, 0.28125, 0.28125, 0.296875, 0.296875, 0.3125, 0.3125, 0.375, 0.375, 0.390625, 0.390625, 0.40625, 0.40625, 0.4375, 0.4375, 0.453125, 0.453125, 0.46875, 0.46875, 0.5, 0.5, 0.53125, 0.53125, 0.5625, 0.5625, 0.59375, 0.59375, 0.625, 0.625, 0.6875, 0.6875, 0.75, 0.75, 0.8125, 0.8125, 0.875, 0.875, 0.9375, 0.9375, 0.96875, 0.984375, 0.984375, 1, 1, 1, 1], degree=3))
            ThreePointArc((18.420920101, -6.450235701), (9.486152693, -9.968187991), (-0.041286395, -11.165669263))
        make_face()
    extrude(amount=CORTAR_EXTRUIR6_DEPTH + CORTAR_EXTRUIR6_DEPTH_BACK, mode=Mode.SUBTRACT)


solid = part.part
